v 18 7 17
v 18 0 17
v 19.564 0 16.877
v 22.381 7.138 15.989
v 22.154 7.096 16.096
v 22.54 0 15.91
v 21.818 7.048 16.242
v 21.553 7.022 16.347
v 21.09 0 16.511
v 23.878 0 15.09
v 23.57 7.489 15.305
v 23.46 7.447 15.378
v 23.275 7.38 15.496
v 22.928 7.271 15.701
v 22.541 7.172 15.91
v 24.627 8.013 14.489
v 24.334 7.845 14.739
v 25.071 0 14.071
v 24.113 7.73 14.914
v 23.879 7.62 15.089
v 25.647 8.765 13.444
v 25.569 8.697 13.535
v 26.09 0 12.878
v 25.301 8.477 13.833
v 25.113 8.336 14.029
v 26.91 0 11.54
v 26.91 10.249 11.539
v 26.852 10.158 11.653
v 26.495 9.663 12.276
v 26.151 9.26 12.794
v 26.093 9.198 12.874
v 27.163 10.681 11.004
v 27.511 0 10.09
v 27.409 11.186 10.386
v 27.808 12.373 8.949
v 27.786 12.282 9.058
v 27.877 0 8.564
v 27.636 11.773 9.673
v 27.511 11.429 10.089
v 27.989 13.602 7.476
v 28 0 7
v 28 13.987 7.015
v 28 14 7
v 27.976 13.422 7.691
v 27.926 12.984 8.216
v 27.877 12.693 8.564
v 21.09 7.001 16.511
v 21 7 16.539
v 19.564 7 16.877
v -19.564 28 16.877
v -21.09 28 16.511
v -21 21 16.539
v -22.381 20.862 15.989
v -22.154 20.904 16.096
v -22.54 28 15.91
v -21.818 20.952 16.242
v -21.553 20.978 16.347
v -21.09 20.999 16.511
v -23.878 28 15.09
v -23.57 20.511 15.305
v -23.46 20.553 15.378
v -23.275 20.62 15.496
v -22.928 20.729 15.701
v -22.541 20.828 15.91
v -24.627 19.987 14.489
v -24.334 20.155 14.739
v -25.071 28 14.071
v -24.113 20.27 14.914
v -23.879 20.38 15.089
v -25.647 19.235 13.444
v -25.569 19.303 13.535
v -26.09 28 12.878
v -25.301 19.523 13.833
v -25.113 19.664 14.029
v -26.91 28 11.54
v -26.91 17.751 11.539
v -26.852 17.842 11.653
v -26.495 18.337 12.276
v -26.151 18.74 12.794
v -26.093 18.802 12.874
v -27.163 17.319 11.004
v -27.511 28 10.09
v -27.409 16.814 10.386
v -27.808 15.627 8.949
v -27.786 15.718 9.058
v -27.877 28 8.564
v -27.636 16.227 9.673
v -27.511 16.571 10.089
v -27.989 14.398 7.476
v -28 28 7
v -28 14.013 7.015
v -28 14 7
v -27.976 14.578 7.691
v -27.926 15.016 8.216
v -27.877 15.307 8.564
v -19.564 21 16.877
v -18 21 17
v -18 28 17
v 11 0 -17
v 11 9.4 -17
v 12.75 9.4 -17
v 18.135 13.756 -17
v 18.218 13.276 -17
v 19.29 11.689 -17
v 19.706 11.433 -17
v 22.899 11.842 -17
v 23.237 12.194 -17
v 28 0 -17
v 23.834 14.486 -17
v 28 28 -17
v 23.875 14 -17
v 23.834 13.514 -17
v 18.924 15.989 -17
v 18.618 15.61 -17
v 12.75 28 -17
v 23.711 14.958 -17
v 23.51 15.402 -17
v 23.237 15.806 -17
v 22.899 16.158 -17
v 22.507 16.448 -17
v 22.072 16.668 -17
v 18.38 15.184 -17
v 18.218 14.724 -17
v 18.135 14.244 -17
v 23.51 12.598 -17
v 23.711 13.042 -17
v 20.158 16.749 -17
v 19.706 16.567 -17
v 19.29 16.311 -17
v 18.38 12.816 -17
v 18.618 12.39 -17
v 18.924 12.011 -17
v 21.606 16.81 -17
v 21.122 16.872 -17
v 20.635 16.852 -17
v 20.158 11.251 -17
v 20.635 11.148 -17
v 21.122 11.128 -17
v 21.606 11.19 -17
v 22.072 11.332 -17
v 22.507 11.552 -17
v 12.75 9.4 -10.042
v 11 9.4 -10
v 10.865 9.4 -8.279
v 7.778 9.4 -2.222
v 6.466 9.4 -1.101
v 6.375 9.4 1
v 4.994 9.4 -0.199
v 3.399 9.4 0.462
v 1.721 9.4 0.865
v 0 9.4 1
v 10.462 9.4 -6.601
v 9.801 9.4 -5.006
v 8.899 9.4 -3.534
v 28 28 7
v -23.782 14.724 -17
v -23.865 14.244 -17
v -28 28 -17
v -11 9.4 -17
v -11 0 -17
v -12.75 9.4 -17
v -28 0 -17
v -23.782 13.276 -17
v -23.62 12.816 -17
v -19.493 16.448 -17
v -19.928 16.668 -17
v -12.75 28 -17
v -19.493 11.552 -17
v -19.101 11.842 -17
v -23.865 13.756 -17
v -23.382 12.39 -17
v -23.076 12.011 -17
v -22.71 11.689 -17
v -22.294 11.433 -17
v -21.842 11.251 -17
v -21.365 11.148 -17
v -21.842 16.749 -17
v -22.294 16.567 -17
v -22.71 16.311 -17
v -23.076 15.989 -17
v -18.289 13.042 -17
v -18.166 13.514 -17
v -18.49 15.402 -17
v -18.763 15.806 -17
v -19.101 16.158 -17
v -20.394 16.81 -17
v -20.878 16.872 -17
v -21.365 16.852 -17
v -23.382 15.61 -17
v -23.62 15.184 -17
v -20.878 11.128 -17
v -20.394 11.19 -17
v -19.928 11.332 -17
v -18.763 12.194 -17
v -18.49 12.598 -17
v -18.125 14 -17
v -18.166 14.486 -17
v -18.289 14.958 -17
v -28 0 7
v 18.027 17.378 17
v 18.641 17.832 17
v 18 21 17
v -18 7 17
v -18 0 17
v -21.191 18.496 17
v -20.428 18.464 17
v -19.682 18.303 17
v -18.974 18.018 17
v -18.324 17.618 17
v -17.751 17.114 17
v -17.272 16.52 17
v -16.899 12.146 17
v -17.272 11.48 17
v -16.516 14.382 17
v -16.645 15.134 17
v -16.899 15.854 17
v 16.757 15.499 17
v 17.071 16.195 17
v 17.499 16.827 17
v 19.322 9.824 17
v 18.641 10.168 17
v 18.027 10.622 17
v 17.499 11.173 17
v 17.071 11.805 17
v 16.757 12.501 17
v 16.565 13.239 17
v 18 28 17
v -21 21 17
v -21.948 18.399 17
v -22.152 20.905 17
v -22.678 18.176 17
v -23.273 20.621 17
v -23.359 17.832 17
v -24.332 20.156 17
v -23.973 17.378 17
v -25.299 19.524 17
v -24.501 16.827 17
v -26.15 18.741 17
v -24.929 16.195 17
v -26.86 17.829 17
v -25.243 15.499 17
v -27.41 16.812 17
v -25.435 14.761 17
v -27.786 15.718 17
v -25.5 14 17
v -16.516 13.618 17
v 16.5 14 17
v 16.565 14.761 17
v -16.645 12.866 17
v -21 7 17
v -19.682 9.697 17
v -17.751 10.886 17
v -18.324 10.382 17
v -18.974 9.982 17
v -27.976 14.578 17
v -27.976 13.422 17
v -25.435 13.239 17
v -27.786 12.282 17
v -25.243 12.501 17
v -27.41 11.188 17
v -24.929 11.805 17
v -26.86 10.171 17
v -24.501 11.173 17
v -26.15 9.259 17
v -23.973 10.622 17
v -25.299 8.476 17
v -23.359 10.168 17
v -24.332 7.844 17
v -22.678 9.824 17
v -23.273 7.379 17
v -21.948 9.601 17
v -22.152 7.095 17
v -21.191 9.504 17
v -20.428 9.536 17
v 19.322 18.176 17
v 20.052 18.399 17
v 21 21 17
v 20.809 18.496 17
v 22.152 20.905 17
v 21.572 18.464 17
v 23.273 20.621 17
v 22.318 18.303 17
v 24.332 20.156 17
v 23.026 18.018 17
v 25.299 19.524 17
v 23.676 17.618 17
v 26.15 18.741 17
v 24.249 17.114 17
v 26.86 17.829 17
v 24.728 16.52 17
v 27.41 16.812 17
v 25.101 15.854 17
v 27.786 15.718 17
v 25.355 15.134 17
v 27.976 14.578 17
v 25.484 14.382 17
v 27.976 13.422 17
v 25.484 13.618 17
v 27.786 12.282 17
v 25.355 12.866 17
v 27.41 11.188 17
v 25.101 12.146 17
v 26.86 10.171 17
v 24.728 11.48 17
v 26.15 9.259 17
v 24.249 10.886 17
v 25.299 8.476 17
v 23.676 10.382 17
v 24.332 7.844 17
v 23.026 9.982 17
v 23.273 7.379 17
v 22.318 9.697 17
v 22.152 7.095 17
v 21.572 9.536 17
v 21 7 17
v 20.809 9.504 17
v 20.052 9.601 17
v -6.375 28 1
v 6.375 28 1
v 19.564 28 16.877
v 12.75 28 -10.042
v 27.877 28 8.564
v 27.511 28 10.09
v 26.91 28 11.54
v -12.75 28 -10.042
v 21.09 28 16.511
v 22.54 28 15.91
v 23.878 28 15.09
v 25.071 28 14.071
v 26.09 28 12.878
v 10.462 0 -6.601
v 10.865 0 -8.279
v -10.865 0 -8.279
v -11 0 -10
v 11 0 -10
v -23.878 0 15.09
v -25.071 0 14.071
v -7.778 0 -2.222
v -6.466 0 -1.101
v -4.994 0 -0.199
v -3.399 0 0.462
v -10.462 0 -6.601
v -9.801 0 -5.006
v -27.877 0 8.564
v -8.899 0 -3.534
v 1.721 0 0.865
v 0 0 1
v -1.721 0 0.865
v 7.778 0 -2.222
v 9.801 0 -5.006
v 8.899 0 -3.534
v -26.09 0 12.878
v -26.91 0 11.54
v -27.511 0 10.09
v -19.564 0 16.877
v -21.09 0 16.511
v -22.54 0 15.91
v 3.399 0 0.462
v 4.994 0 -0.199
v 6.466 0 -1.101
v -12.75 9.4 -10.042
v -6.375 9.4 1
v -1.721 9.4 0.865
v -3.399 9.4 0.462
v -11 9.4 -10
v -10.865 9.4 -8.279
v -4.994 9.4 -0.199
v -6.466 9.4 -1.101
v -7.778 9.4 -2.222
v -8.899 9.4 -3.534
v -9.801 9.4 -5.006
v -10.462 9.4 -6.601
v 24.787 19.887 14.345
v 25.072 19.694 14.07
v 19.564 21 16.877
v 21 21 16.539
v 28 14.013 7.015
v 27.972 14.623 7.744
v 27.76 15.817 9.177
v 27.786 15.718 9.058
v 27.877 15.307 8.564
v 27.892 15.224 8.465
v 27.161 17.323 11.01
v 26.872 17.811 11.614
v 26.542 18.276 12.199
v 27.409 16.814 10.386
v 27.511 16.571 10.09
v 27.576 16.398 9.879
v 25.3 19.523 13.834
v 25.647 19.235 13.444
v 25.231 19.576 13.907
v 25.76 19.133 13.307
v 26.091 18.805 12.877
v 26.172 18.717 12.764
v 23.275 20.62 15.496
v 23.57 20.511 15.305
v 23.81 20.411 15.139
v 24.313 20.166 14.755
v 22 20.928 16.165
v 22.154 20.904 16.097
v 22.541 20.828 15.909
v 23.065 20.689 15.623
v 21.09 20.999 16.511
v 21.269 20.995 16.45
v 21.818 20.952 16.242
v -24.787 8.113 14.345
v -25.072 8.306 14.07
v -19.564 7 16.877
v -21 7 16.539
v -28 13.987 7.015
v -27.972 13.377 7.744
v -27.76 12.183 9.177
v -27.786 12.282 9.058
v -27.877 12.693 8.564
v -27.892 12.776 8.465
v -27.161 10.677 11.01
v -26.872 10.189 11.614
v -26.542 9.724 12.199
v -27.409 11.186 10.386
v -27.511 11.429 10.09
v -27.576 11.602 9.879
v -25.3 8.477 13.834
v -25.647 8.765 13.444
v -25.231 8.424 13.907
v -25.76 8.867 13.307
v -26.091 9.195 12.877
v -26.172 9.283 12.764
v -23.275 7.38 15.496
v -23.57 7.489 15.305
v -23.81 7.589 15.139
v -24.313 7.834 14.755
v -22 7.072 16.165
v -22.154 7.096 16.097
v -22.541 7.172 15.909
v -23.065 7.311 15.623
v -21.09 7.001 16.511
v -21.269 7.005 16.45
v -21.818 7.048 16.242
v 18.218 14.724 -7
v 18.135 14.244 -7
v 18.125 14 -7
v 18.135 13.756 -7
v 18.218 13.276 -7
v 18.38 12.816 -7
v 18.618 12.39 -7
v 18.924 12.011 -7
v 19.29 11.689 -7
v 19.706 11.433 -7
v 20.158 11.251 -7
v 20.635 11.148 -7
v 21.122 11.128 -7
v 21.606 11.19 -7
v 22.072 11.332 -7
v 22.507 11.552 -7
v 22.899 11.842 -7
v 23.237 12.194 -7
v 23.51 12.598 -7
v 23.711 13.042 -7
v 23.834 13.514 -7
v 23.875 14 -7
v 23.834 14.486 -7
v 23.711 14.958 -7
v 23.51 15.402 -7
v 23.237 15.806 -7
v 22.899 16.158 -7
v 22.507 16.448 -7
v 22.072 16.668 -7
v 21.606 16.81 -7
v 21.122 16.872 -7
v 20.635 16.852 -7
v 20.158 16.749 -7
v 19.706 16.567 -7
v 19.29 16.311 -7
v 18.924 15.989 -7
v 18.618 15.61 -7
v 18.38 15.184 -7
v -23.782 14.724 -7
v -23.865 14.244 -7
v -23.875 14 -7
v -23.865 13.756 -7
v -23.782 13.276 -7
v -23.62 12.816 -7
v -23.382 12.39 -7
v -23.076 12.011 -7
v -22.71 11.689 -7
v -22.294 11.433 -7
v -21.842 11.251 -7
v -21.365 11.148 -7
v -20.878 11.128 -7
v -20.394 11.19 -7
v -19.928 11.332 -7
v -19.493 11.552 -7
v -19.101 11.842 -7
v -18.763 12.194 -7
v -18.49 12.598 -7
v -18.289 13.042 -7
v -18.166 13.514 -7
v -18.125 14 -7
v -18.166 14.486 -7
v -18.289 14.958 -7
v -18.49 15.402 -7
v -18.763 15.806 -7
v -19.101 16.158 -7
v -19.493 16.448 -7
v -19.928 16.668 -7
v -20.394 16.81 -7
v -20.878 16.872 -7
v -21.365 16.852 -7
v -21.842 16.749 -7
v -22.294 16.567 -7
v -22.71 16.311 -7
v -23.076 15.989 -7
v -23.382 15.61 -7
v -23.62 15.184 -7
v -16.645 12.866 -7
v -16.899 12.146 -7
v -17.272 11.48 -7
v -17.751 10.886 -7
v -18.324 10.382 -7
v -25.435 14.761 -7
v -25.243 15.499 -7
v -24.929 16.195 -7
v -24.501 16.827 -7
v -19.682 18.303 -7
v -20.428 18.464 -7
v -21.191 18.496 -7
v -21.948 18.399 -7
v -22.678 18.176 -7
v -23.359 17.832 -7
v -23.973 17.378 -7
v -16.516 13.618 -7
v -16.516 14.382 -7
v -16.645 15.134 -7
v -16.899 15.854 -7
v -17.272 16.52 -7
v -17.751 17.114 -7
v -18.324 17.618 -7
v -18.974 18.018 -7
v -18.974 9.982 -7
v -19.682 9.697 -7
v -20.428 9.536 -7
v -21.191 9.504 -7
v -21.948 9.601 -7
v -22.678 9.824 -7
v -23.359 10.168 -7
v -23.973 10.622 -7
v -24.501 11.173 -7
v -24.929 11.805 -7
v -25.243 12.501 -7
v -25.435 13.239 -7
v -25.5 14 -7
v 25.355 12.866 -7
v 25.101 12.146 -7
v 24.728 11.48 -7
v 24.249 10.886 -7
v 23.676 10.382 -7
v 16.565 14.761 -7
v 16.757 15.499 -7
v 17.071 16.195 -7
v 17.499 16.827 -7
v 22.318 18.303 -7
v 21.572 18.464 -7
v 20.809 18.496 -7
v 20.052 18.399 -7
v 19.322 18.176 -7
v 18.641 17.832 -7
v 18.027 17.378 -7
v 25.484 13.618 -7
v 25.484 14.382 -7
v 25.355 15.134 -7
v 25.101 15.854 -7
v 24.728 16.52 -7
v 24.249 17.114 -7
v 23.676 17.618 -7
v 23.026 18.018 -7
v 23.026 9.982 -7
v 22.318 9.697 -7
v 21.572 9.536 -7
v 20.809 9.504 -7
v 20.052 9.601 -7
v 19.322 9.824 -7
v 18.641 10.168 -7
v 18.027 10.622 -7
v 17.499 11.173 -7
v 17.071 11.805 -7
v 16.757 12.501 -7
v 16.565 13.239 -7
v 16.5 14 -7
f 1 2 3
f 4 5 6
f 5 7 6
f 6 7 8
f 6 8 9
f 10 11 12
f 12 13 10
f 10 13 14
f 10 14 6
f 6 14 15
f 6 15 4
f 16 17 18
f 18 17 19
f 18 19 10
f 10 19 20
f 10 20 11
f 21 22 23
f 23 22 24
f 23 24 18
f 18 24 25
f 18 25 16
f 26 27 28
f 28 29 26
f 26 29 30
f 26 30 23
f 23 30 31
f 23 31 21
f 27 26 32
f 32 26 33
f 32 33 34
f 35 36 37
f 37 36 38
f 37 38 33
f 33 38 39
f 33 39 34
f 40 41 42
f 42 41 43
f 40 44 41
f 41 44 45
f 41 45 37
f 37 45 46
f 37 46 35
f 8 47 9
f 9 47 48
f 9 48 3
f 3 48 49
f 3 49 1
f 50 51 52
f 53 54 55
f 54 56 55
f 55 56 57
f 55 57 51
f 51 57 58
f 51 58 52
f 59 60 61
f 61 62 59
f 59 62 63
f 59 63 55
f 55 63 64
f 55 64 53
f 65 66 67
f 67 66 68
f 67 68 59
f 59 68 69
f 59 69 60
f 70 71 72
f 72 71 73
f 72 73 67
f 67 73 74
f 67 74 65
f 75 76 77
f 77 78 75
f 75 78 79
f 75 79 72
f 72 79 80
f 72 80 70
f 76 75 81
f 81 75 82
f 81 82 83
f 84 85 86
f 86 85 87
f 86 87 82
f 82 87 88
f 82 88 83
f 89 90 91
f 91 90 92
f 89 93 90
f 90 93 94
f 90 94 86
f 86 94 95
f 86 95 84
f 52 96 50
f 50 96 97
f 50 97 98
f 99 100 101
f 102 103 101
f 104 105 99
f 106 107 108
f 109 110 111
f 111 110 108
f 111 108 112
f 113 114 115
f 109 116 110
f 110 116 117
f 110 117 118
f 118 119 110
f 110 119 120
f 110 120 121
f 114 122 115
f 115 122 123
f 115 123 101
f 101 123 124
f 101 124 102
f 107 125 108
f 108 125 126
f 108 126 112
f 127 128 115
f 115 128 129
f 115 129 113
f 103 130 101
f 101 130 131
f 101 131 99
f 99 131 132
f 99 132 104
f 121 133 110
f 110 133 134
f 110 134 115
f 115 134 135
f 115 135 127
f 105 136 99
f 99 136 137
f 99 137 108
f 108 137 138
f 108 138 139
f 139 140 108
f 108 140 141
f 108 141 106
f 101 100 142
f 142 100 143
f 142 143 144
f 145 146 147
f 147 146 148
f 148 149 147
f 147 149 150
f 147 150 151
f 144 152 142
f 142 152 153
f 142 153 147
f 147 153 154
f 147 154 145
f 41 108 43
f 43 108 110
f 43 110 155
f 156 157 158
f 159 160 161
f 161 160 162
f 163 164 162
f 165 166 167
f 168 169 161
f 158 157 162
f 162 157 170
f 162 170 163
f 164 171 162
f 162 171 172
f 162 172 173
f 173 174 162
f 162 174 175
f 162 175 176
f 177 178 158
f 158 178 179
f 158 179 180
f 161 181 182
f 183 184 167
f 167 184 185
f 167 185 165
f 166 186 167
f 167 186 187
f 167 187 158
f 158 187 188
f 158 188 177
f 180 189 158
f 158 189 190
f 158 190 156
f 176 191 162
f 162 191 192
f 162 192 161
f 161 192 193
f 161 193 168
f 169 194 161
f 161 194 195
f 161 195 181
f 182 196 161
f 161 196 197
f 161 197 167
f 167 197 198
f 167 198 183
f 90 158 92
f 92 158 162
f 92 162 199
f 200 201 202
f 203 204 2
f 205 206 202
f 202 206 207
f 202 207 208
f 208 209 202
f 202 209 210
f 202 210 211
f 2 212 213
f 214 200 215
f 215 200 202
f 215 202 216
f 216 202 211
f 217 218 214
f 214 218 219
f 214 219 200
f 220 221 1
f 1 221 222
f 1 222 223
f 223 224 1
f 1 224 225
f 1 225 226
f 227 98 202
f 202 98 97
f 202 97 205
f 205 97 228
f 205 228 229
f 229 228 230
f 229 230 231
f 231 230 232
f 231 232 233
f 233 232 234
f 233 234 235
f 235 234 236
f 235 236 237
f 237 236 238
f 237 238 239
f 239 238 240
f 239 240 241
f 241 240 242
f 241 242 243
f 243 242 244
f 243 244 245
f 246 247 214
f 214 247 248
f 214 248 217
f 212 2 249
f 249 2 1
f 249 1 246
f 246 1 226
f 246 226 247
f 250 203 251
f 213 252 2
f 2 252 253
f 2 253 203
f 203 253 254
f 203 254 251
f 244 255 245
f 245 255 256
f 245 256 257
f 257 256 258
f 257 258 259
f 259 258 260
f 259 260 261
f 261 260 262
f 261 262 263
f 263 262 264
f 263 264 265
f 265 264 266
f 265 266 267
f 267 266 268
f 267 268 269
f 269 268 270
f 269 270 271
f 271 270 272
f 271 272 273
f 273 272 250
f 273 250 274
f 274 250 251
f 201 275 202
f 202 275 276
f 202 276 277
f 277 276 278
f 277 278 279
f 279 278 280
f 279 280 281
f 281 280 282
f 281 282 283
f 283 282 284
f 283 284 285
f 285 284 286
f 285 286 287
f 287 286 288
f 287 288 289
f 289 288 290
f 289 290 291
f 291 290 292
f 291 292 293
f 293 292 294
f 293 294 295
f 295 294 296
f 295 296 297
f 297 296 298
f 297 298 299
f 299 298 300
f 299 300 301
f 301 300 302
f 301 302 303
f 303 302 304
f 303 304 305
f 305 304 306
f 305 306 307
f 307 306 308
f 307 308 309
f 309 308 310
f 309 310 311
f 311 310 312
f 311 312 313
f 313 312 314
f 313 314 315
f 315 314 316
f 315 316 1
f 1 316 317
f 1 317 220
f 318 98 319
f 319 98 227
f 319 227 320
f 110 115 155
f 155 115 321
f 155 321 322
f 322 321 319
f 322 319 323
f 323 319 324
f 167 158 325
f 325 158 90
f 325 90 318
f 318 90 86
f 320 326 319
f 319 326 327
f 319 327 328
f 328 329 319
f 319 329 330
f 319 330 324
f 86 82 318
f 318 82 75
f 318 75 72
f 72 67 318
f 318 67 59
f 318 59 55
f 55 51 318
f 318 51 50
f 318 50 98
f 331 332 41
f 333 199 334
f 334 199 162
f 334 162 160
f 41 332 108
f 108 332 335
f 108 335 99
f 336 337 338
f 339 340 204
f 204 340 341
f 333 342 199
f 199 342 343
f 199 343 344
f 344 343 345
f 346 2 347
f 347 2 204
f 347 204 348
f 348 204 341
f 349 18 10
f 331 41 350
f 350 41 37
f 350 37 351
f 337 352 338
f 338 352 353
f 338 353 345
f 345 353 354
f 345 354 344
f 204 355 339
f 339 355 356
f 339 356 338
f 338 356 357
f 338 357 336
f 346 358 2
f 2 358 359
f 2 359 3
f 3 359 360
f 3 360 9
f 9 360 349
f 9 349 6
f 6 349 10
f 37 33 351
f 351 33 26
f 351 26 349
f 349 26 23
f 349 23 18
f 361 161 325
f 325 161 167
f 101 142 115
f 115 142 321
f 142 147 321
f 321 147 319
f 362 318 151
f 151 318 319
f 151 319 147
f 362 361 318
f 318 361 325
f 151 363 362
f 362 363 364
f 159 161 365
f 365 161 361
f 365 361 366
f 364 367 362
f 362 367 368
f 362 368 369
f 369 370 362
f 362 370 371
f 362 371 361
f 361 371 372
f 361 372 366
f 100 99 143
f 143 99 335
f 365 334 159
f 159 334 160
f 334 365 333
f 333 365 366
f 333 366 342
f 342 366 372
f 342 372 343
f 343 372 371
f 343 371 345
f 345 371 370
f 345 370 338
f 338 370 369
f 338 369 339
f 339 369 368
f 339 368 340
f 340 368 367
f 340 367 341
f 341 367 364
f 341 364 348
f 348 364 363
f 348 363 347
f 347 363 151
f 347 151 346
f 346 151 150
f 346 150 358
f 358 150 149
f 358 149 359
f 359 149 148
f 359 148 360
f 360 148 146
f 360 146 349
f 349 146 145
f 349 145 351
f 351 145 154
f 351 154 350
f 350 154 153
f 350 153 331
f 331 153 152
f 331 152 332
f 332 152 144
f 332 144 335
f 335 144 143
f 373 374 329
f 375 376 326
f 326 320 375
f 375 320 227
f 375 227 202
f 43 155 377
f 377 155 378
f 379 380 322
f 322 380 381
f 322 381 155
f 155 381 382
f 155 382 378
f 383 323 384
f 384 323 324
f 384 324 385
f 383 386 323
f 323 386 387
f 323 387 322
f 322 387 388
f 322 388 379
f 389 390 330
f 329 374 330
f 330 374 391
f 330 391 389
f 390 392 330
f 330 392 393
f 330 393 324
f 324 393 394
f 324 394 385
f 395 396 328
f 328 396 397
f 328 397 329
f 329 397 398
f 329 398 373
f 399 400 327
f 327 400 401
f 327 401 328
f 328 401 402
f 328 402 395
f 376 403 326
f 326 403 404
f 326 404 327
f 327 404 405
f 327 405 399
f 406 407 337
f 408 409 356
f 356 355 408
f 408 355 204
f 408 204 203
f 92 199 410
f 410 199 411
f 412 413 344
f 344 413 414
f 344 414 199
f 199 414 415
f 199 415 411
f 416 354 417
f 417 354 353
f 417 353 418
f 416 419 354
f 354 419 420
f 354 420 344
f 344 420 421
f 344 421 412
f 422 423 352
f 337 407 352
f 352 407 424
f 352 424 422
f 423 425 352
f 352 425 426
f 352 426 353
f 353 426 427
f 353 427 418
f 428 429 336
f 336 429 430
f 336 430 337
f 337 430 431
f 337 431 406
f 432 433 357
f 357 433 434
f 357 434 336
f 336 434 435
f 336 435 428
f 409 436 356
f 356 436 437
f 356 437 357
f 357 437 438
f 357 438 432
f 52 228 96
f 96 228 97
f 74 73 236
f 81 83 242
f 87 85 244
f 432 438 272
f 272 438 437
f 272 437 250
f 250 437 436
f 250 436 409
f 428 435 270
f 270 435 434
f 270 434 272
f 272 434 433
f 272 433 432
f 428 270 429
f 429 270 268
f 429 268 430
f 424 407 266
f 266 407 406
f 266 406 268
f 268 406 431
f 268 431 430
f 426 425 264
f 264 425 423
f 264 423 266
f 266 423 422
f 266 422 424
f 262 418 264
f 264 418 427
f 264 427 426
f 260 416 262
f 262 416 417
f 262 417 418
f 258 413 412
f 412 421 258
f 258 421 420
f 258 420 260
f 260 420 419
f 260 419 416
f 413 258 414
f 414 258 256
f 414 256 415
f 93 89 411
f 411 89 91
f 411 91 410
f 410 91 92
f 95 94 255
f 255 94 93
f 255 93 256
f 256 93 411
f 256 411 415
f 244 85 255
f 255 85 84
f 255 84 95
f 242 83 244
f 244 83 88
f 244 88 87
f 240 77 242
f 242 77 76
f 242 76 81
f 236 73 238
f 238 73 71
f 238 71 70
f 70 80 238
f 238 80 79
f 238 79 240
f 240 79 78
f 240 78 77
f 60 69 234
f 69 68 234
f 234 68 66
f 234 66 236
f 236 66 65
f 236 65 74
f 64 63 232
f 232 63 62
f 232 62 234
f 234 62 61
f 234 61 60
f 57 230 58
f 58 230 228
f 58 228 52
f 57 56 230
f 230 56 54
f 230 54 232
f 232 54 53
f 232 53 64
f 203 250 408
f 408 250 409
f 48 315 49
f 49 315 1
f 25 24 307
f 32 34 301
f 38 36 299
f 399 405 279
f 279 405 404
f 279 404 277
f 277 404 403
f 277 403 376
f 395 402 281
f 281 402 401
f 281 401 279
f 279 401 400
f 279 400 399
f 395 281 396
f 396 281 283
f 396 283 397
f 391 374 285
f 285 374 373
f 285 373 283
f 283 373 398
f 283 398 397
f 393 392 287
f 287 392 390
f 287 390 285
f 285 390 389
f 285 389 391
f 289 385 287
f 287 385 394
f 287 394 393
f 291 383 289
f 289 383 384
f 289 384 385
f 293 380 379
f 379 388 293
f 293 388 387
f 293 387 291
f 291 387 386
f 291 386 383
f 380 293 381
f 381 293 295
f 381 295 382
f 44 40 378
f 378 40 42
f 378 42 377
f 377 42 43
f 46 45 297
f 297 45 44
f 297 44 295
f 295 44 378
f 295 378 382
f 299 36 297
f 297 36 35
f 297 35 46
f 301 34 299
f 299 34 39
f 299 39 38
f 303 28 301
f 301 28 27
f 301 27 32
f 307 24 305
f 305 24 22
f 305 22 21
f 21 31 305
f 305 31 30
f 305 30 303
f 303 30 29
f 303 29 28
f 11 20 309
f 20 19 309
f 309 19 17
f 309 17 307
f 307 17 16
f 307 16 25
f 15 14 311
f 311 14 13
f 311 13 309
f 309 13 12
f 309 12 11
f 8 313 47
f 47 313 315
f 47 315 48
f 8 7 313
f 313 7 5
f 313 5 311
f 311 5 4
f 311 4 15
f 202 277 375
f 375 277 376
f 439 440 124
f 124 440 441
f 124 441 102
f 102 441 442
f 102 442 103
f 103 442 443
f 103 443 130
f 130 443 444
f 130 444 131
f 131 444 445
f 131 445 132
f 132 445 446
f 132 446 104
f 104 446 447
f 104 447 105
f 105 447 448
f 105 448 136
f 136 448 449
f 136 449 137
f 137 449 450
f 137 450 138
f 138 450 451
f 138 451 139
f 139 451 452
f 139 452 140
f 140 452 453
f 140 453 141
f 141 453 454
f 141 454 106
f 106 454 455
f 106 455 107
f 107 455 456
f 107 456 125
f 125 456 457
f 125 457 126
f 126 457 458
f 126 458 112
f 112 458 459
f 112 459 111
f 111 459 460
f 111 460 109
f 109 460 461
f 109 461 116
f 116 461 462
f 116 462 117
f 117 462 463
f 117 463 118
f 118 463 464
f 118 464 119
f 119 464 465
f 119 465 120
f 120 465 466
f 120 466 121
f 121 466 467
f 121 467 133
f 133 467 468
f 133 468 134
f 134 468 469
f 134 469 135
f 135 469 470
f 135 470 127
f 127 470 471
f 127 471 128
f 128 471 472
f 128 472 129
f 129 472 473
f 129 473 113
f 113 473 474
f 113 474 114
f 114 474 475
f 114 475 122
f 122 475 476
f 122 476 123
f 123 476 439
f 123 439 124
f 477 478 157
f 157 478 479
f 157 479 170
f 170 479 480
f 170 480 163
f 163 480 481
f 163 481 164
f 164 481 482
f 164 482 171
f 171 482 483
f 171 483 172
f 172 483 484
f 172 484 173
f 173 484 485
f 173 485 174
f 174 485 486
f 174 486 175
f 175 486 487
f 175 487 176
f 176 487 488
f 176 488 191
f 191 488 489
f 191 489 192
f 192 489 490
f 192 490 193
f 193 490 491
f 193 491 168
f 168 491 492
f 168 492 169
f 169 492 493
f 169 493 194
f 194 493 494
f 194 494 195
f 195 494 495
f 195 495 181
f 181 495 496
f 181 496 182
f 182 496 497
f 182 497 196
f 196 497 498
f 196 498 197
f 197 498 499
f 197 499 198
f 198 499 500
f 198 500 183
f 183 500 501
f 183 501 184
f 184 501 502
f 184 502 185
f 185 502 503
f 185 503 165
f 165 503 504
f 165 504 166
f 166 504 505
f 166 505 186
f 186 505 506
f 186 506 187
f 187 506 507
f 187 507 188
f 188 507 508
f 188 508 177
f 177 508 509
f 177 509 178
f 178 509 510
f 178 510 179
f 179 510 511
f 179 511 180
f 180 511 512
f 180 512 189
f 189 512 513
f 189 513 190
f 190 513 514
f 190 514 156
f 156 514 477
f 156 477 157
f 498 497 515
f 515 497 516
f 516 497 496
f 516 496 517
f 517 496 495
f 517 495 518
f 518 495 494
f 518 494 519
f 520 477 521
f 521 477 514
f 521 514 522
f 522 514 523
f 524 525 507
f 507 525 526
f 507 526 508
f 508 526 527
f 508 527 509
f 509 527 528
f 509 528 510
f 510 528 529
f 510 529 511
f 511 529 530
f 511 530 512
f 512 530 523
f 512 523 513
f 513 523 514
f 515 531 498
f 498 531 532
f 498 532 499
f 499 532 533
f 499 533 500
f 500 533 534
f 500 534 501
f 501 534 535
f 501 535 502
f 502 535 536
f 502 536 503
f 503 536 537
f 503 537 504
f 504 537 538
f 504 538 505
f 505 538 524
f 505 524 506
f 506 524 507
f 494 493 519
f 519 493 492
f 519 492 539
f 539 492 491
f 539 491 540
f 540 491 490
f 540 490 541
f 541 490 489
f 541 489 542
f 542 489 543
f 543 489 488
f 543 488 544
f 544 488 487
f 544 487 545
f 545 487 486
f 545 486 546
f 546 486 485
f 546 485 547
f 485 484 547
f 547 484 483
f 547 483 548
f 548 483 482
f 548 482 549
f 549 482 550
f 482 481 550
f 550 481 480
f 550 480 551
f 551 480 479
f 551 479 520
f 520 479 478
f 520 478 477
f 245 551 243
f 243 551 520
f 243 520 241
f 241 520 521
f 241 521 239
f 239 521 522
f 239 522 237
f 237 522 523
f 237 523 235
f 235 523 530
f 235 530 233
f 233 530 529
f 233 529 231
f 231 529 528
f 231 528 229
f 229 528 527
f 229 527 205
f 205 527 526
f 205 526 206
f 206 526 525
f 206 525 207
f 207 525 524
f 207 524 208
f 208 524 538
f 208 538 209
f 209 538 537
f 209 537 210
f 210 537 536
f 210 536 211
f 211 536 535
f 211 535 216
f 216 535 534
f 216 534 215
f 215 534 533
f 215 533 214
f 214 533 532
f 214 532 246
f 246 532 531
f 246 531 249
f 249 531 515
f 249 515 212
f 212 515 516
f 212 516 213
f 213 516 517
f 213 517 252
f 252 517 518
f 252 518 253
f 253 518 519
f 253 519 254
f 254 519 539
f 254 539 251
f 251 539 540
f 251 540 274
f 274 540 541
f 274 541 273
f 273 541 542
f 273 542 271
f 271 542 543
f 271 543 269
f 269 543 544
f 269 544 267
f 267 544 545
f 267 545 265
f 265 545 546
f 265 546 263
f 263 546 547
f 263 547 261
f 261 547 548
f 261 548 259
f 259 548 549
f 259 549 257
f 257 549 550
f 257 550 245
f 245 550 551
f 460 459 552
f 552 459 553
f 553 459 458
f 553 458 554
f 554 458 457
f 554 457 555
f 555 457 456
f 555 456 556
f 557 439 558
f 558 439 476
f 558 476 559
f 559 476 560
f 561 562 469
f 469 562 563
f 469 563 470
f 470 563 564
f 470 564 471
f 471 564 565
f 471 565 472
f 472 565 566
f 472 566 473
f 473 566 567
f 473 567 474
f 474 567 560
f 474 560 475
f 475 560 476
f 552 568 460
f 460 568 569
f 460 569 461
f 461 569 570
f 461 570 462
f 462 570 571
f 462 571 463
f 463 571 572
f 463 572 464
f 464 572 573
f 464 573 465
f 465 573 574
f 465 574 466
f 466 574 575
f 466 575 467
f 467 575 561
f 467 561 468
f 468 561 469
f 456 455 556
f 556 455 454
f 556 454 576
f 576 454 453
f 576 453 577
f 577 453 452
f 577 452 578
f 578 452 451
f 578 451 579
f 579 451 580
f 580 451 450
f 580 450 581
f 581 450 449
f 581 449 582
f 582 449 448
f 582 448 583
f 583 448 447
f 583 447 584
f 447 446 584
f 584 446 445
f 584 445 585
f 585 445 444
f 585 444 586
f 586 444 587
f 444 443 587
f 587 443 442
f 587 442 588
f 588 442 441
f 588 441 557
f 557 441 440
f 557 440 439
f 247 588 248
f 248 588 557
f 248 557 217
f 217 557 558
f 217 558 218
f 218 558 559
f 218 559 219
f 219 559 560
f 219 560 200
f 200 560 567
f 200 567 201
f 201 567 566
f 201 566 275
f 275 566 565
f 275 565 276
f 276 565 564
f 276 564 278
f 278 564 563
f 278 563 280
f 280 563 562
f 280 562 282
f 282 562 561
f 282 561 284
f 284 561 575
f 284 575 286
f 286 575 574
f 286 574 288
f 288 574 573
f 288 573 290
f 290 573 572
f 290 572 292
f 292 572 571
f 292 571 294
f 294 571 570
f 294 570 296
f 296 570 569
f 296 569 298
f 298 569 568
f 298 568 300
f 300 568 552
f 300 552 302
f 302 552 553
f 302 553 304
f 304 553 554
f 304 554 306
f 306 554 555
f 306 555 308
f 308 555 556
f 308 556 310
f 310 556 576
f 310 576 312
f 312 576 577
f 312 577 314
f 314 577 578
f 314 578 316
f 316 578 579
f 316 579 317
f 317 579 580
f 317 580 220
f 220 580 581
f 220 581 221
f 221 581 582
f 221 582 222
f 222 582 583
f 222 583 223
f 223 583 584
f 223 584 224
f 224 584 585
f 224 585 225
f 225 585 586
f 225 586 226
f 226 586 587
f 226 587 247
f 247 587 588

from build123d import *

# Parameters (mm, degrees)
SKETCH1_W           = 56
SKETCH1_H           = 34
BOSS_EXTRUDE1_DEPTH = 28
CUT_EXTRUDE1_DEPTH  = 18.6
CUT_EXTRUDE2_DEPTH  = 9.4
FILLET1_R           = 10
BOSS_EXTRUDE2_DEPTH = 16
SKETCH6_R           = 2.875
CUT_EXTRUDE3_DEPTH  = 34
SKETCH8_R           = 4.5
CUT_EXTRUDE4_DEPTH  = 24


with BuildPart() as part:
    # Sketch1 → Boss-Extrude1 (new body)
    with BuildSketch(Plane(origin=(0, 0, 0), x_dir=(1, 0, 0), z_dir=(0, 1, 0))):
        Rectangle(SKETCH1_W, SKETCH1_H)
    extrude(amount=BOSS_EXTRUDE1_DEPTH)

    # Sketch2 → Cut-Extrude1 (cut)
    with BuildSketch(Plane(origin=(0, 28, 0), x_dir=(1, 0, 0), z_dir=(0, 1, 0))):
        Polygon((-12.75, 10.041823898), (-6.375, -1), (6.375, -1), (12.75, 10.041823898), (12.75, 17), (-12.75, 17), align=None)
    extrude(amount=-CUT_EXTRUDE1_DEPTH, mode=Mode.SUBTRACT)

    # Sketch3 → Cut-Extrude2 (cut)
    with BuildSketch(Plane(origin=(0, 9.4, 0), x_dir=(1, 0, 0), z_dir=(0, 1, 0))):
        with BuildLine():
            Line((-11, 10), (-11, 17))
            Line((-11, 17), (11, 17))
            Line((11, 17), (11, 10))
            ThreePointArc((11, 10), (0, -1), (-11, 10))
        make_face()
    extrude(amount=-CUT_EXTRUDE2_DEPTH, mode=Mode.SUBTRACT)

    # Fillet1
    fillet1_edges = [part.edges().sort_by_distance(p)[0] for p in [
        (28, 14, 17),
        (-28, 14, 17),
    ]]
    fillet(fillet1_edges, radius=FILLET1_R)

    # Sketch5 → Boss-Extrude2 (add)
    with BuildSketch(Plane(origin=(0, 0, 1), x_dir=(-1, 0, 0), z_dir=(0, 0, -1))):
        with BuildLine():
            Line((18, 21), (18, 7))
            Line((18, 7), (21, 7))
            ThreePointArc((21, 7), (28, 14), (21, 21))
            Line((21, 21), (18, 21))
        make_face()
        with BuildLine():
            Line((-18, 7), (-21, 7))
            ThreePointArc((-21, 7), (-28, 14), (-21, 21))
            Line((-21, 21), (-18, 21))
            Line((-18, 21), (-18, 7))
        make_face()
    extrude(amount=-BOSS_EXTRUDE2_DEPTH)

    # Sketch6 → Cut-Extrude3 (cut)
    with BuildSketch(Plane.XY.offset(17)):
        with Locations((-21, 14)):
            Circle(SKETCH6_R)
        with Locations((21, 14)):
            Circle(SKETCH6_R)
    extrude(amount=-CUT_EXTRUDE3_DEPTH, mode=Mode.SUBTRACT)

    # Sketch8 → Cut-Extrude4 (cut)
    with BuildSketch(Plane(origin=(0, 0, -7), x_dir=(-1, 0, 0), z_dir=(0, 0, -1))):
        with Locations((21, 14)):
            Circle(SKETCH8_R)
        with Locations((-21, 14)):
            Circle(SKETCH8_R)
    extrude(amount=-CUT_EXTRUDE4_DEPTH, mode=Mode.SUBTRACT)


solid = part.part
